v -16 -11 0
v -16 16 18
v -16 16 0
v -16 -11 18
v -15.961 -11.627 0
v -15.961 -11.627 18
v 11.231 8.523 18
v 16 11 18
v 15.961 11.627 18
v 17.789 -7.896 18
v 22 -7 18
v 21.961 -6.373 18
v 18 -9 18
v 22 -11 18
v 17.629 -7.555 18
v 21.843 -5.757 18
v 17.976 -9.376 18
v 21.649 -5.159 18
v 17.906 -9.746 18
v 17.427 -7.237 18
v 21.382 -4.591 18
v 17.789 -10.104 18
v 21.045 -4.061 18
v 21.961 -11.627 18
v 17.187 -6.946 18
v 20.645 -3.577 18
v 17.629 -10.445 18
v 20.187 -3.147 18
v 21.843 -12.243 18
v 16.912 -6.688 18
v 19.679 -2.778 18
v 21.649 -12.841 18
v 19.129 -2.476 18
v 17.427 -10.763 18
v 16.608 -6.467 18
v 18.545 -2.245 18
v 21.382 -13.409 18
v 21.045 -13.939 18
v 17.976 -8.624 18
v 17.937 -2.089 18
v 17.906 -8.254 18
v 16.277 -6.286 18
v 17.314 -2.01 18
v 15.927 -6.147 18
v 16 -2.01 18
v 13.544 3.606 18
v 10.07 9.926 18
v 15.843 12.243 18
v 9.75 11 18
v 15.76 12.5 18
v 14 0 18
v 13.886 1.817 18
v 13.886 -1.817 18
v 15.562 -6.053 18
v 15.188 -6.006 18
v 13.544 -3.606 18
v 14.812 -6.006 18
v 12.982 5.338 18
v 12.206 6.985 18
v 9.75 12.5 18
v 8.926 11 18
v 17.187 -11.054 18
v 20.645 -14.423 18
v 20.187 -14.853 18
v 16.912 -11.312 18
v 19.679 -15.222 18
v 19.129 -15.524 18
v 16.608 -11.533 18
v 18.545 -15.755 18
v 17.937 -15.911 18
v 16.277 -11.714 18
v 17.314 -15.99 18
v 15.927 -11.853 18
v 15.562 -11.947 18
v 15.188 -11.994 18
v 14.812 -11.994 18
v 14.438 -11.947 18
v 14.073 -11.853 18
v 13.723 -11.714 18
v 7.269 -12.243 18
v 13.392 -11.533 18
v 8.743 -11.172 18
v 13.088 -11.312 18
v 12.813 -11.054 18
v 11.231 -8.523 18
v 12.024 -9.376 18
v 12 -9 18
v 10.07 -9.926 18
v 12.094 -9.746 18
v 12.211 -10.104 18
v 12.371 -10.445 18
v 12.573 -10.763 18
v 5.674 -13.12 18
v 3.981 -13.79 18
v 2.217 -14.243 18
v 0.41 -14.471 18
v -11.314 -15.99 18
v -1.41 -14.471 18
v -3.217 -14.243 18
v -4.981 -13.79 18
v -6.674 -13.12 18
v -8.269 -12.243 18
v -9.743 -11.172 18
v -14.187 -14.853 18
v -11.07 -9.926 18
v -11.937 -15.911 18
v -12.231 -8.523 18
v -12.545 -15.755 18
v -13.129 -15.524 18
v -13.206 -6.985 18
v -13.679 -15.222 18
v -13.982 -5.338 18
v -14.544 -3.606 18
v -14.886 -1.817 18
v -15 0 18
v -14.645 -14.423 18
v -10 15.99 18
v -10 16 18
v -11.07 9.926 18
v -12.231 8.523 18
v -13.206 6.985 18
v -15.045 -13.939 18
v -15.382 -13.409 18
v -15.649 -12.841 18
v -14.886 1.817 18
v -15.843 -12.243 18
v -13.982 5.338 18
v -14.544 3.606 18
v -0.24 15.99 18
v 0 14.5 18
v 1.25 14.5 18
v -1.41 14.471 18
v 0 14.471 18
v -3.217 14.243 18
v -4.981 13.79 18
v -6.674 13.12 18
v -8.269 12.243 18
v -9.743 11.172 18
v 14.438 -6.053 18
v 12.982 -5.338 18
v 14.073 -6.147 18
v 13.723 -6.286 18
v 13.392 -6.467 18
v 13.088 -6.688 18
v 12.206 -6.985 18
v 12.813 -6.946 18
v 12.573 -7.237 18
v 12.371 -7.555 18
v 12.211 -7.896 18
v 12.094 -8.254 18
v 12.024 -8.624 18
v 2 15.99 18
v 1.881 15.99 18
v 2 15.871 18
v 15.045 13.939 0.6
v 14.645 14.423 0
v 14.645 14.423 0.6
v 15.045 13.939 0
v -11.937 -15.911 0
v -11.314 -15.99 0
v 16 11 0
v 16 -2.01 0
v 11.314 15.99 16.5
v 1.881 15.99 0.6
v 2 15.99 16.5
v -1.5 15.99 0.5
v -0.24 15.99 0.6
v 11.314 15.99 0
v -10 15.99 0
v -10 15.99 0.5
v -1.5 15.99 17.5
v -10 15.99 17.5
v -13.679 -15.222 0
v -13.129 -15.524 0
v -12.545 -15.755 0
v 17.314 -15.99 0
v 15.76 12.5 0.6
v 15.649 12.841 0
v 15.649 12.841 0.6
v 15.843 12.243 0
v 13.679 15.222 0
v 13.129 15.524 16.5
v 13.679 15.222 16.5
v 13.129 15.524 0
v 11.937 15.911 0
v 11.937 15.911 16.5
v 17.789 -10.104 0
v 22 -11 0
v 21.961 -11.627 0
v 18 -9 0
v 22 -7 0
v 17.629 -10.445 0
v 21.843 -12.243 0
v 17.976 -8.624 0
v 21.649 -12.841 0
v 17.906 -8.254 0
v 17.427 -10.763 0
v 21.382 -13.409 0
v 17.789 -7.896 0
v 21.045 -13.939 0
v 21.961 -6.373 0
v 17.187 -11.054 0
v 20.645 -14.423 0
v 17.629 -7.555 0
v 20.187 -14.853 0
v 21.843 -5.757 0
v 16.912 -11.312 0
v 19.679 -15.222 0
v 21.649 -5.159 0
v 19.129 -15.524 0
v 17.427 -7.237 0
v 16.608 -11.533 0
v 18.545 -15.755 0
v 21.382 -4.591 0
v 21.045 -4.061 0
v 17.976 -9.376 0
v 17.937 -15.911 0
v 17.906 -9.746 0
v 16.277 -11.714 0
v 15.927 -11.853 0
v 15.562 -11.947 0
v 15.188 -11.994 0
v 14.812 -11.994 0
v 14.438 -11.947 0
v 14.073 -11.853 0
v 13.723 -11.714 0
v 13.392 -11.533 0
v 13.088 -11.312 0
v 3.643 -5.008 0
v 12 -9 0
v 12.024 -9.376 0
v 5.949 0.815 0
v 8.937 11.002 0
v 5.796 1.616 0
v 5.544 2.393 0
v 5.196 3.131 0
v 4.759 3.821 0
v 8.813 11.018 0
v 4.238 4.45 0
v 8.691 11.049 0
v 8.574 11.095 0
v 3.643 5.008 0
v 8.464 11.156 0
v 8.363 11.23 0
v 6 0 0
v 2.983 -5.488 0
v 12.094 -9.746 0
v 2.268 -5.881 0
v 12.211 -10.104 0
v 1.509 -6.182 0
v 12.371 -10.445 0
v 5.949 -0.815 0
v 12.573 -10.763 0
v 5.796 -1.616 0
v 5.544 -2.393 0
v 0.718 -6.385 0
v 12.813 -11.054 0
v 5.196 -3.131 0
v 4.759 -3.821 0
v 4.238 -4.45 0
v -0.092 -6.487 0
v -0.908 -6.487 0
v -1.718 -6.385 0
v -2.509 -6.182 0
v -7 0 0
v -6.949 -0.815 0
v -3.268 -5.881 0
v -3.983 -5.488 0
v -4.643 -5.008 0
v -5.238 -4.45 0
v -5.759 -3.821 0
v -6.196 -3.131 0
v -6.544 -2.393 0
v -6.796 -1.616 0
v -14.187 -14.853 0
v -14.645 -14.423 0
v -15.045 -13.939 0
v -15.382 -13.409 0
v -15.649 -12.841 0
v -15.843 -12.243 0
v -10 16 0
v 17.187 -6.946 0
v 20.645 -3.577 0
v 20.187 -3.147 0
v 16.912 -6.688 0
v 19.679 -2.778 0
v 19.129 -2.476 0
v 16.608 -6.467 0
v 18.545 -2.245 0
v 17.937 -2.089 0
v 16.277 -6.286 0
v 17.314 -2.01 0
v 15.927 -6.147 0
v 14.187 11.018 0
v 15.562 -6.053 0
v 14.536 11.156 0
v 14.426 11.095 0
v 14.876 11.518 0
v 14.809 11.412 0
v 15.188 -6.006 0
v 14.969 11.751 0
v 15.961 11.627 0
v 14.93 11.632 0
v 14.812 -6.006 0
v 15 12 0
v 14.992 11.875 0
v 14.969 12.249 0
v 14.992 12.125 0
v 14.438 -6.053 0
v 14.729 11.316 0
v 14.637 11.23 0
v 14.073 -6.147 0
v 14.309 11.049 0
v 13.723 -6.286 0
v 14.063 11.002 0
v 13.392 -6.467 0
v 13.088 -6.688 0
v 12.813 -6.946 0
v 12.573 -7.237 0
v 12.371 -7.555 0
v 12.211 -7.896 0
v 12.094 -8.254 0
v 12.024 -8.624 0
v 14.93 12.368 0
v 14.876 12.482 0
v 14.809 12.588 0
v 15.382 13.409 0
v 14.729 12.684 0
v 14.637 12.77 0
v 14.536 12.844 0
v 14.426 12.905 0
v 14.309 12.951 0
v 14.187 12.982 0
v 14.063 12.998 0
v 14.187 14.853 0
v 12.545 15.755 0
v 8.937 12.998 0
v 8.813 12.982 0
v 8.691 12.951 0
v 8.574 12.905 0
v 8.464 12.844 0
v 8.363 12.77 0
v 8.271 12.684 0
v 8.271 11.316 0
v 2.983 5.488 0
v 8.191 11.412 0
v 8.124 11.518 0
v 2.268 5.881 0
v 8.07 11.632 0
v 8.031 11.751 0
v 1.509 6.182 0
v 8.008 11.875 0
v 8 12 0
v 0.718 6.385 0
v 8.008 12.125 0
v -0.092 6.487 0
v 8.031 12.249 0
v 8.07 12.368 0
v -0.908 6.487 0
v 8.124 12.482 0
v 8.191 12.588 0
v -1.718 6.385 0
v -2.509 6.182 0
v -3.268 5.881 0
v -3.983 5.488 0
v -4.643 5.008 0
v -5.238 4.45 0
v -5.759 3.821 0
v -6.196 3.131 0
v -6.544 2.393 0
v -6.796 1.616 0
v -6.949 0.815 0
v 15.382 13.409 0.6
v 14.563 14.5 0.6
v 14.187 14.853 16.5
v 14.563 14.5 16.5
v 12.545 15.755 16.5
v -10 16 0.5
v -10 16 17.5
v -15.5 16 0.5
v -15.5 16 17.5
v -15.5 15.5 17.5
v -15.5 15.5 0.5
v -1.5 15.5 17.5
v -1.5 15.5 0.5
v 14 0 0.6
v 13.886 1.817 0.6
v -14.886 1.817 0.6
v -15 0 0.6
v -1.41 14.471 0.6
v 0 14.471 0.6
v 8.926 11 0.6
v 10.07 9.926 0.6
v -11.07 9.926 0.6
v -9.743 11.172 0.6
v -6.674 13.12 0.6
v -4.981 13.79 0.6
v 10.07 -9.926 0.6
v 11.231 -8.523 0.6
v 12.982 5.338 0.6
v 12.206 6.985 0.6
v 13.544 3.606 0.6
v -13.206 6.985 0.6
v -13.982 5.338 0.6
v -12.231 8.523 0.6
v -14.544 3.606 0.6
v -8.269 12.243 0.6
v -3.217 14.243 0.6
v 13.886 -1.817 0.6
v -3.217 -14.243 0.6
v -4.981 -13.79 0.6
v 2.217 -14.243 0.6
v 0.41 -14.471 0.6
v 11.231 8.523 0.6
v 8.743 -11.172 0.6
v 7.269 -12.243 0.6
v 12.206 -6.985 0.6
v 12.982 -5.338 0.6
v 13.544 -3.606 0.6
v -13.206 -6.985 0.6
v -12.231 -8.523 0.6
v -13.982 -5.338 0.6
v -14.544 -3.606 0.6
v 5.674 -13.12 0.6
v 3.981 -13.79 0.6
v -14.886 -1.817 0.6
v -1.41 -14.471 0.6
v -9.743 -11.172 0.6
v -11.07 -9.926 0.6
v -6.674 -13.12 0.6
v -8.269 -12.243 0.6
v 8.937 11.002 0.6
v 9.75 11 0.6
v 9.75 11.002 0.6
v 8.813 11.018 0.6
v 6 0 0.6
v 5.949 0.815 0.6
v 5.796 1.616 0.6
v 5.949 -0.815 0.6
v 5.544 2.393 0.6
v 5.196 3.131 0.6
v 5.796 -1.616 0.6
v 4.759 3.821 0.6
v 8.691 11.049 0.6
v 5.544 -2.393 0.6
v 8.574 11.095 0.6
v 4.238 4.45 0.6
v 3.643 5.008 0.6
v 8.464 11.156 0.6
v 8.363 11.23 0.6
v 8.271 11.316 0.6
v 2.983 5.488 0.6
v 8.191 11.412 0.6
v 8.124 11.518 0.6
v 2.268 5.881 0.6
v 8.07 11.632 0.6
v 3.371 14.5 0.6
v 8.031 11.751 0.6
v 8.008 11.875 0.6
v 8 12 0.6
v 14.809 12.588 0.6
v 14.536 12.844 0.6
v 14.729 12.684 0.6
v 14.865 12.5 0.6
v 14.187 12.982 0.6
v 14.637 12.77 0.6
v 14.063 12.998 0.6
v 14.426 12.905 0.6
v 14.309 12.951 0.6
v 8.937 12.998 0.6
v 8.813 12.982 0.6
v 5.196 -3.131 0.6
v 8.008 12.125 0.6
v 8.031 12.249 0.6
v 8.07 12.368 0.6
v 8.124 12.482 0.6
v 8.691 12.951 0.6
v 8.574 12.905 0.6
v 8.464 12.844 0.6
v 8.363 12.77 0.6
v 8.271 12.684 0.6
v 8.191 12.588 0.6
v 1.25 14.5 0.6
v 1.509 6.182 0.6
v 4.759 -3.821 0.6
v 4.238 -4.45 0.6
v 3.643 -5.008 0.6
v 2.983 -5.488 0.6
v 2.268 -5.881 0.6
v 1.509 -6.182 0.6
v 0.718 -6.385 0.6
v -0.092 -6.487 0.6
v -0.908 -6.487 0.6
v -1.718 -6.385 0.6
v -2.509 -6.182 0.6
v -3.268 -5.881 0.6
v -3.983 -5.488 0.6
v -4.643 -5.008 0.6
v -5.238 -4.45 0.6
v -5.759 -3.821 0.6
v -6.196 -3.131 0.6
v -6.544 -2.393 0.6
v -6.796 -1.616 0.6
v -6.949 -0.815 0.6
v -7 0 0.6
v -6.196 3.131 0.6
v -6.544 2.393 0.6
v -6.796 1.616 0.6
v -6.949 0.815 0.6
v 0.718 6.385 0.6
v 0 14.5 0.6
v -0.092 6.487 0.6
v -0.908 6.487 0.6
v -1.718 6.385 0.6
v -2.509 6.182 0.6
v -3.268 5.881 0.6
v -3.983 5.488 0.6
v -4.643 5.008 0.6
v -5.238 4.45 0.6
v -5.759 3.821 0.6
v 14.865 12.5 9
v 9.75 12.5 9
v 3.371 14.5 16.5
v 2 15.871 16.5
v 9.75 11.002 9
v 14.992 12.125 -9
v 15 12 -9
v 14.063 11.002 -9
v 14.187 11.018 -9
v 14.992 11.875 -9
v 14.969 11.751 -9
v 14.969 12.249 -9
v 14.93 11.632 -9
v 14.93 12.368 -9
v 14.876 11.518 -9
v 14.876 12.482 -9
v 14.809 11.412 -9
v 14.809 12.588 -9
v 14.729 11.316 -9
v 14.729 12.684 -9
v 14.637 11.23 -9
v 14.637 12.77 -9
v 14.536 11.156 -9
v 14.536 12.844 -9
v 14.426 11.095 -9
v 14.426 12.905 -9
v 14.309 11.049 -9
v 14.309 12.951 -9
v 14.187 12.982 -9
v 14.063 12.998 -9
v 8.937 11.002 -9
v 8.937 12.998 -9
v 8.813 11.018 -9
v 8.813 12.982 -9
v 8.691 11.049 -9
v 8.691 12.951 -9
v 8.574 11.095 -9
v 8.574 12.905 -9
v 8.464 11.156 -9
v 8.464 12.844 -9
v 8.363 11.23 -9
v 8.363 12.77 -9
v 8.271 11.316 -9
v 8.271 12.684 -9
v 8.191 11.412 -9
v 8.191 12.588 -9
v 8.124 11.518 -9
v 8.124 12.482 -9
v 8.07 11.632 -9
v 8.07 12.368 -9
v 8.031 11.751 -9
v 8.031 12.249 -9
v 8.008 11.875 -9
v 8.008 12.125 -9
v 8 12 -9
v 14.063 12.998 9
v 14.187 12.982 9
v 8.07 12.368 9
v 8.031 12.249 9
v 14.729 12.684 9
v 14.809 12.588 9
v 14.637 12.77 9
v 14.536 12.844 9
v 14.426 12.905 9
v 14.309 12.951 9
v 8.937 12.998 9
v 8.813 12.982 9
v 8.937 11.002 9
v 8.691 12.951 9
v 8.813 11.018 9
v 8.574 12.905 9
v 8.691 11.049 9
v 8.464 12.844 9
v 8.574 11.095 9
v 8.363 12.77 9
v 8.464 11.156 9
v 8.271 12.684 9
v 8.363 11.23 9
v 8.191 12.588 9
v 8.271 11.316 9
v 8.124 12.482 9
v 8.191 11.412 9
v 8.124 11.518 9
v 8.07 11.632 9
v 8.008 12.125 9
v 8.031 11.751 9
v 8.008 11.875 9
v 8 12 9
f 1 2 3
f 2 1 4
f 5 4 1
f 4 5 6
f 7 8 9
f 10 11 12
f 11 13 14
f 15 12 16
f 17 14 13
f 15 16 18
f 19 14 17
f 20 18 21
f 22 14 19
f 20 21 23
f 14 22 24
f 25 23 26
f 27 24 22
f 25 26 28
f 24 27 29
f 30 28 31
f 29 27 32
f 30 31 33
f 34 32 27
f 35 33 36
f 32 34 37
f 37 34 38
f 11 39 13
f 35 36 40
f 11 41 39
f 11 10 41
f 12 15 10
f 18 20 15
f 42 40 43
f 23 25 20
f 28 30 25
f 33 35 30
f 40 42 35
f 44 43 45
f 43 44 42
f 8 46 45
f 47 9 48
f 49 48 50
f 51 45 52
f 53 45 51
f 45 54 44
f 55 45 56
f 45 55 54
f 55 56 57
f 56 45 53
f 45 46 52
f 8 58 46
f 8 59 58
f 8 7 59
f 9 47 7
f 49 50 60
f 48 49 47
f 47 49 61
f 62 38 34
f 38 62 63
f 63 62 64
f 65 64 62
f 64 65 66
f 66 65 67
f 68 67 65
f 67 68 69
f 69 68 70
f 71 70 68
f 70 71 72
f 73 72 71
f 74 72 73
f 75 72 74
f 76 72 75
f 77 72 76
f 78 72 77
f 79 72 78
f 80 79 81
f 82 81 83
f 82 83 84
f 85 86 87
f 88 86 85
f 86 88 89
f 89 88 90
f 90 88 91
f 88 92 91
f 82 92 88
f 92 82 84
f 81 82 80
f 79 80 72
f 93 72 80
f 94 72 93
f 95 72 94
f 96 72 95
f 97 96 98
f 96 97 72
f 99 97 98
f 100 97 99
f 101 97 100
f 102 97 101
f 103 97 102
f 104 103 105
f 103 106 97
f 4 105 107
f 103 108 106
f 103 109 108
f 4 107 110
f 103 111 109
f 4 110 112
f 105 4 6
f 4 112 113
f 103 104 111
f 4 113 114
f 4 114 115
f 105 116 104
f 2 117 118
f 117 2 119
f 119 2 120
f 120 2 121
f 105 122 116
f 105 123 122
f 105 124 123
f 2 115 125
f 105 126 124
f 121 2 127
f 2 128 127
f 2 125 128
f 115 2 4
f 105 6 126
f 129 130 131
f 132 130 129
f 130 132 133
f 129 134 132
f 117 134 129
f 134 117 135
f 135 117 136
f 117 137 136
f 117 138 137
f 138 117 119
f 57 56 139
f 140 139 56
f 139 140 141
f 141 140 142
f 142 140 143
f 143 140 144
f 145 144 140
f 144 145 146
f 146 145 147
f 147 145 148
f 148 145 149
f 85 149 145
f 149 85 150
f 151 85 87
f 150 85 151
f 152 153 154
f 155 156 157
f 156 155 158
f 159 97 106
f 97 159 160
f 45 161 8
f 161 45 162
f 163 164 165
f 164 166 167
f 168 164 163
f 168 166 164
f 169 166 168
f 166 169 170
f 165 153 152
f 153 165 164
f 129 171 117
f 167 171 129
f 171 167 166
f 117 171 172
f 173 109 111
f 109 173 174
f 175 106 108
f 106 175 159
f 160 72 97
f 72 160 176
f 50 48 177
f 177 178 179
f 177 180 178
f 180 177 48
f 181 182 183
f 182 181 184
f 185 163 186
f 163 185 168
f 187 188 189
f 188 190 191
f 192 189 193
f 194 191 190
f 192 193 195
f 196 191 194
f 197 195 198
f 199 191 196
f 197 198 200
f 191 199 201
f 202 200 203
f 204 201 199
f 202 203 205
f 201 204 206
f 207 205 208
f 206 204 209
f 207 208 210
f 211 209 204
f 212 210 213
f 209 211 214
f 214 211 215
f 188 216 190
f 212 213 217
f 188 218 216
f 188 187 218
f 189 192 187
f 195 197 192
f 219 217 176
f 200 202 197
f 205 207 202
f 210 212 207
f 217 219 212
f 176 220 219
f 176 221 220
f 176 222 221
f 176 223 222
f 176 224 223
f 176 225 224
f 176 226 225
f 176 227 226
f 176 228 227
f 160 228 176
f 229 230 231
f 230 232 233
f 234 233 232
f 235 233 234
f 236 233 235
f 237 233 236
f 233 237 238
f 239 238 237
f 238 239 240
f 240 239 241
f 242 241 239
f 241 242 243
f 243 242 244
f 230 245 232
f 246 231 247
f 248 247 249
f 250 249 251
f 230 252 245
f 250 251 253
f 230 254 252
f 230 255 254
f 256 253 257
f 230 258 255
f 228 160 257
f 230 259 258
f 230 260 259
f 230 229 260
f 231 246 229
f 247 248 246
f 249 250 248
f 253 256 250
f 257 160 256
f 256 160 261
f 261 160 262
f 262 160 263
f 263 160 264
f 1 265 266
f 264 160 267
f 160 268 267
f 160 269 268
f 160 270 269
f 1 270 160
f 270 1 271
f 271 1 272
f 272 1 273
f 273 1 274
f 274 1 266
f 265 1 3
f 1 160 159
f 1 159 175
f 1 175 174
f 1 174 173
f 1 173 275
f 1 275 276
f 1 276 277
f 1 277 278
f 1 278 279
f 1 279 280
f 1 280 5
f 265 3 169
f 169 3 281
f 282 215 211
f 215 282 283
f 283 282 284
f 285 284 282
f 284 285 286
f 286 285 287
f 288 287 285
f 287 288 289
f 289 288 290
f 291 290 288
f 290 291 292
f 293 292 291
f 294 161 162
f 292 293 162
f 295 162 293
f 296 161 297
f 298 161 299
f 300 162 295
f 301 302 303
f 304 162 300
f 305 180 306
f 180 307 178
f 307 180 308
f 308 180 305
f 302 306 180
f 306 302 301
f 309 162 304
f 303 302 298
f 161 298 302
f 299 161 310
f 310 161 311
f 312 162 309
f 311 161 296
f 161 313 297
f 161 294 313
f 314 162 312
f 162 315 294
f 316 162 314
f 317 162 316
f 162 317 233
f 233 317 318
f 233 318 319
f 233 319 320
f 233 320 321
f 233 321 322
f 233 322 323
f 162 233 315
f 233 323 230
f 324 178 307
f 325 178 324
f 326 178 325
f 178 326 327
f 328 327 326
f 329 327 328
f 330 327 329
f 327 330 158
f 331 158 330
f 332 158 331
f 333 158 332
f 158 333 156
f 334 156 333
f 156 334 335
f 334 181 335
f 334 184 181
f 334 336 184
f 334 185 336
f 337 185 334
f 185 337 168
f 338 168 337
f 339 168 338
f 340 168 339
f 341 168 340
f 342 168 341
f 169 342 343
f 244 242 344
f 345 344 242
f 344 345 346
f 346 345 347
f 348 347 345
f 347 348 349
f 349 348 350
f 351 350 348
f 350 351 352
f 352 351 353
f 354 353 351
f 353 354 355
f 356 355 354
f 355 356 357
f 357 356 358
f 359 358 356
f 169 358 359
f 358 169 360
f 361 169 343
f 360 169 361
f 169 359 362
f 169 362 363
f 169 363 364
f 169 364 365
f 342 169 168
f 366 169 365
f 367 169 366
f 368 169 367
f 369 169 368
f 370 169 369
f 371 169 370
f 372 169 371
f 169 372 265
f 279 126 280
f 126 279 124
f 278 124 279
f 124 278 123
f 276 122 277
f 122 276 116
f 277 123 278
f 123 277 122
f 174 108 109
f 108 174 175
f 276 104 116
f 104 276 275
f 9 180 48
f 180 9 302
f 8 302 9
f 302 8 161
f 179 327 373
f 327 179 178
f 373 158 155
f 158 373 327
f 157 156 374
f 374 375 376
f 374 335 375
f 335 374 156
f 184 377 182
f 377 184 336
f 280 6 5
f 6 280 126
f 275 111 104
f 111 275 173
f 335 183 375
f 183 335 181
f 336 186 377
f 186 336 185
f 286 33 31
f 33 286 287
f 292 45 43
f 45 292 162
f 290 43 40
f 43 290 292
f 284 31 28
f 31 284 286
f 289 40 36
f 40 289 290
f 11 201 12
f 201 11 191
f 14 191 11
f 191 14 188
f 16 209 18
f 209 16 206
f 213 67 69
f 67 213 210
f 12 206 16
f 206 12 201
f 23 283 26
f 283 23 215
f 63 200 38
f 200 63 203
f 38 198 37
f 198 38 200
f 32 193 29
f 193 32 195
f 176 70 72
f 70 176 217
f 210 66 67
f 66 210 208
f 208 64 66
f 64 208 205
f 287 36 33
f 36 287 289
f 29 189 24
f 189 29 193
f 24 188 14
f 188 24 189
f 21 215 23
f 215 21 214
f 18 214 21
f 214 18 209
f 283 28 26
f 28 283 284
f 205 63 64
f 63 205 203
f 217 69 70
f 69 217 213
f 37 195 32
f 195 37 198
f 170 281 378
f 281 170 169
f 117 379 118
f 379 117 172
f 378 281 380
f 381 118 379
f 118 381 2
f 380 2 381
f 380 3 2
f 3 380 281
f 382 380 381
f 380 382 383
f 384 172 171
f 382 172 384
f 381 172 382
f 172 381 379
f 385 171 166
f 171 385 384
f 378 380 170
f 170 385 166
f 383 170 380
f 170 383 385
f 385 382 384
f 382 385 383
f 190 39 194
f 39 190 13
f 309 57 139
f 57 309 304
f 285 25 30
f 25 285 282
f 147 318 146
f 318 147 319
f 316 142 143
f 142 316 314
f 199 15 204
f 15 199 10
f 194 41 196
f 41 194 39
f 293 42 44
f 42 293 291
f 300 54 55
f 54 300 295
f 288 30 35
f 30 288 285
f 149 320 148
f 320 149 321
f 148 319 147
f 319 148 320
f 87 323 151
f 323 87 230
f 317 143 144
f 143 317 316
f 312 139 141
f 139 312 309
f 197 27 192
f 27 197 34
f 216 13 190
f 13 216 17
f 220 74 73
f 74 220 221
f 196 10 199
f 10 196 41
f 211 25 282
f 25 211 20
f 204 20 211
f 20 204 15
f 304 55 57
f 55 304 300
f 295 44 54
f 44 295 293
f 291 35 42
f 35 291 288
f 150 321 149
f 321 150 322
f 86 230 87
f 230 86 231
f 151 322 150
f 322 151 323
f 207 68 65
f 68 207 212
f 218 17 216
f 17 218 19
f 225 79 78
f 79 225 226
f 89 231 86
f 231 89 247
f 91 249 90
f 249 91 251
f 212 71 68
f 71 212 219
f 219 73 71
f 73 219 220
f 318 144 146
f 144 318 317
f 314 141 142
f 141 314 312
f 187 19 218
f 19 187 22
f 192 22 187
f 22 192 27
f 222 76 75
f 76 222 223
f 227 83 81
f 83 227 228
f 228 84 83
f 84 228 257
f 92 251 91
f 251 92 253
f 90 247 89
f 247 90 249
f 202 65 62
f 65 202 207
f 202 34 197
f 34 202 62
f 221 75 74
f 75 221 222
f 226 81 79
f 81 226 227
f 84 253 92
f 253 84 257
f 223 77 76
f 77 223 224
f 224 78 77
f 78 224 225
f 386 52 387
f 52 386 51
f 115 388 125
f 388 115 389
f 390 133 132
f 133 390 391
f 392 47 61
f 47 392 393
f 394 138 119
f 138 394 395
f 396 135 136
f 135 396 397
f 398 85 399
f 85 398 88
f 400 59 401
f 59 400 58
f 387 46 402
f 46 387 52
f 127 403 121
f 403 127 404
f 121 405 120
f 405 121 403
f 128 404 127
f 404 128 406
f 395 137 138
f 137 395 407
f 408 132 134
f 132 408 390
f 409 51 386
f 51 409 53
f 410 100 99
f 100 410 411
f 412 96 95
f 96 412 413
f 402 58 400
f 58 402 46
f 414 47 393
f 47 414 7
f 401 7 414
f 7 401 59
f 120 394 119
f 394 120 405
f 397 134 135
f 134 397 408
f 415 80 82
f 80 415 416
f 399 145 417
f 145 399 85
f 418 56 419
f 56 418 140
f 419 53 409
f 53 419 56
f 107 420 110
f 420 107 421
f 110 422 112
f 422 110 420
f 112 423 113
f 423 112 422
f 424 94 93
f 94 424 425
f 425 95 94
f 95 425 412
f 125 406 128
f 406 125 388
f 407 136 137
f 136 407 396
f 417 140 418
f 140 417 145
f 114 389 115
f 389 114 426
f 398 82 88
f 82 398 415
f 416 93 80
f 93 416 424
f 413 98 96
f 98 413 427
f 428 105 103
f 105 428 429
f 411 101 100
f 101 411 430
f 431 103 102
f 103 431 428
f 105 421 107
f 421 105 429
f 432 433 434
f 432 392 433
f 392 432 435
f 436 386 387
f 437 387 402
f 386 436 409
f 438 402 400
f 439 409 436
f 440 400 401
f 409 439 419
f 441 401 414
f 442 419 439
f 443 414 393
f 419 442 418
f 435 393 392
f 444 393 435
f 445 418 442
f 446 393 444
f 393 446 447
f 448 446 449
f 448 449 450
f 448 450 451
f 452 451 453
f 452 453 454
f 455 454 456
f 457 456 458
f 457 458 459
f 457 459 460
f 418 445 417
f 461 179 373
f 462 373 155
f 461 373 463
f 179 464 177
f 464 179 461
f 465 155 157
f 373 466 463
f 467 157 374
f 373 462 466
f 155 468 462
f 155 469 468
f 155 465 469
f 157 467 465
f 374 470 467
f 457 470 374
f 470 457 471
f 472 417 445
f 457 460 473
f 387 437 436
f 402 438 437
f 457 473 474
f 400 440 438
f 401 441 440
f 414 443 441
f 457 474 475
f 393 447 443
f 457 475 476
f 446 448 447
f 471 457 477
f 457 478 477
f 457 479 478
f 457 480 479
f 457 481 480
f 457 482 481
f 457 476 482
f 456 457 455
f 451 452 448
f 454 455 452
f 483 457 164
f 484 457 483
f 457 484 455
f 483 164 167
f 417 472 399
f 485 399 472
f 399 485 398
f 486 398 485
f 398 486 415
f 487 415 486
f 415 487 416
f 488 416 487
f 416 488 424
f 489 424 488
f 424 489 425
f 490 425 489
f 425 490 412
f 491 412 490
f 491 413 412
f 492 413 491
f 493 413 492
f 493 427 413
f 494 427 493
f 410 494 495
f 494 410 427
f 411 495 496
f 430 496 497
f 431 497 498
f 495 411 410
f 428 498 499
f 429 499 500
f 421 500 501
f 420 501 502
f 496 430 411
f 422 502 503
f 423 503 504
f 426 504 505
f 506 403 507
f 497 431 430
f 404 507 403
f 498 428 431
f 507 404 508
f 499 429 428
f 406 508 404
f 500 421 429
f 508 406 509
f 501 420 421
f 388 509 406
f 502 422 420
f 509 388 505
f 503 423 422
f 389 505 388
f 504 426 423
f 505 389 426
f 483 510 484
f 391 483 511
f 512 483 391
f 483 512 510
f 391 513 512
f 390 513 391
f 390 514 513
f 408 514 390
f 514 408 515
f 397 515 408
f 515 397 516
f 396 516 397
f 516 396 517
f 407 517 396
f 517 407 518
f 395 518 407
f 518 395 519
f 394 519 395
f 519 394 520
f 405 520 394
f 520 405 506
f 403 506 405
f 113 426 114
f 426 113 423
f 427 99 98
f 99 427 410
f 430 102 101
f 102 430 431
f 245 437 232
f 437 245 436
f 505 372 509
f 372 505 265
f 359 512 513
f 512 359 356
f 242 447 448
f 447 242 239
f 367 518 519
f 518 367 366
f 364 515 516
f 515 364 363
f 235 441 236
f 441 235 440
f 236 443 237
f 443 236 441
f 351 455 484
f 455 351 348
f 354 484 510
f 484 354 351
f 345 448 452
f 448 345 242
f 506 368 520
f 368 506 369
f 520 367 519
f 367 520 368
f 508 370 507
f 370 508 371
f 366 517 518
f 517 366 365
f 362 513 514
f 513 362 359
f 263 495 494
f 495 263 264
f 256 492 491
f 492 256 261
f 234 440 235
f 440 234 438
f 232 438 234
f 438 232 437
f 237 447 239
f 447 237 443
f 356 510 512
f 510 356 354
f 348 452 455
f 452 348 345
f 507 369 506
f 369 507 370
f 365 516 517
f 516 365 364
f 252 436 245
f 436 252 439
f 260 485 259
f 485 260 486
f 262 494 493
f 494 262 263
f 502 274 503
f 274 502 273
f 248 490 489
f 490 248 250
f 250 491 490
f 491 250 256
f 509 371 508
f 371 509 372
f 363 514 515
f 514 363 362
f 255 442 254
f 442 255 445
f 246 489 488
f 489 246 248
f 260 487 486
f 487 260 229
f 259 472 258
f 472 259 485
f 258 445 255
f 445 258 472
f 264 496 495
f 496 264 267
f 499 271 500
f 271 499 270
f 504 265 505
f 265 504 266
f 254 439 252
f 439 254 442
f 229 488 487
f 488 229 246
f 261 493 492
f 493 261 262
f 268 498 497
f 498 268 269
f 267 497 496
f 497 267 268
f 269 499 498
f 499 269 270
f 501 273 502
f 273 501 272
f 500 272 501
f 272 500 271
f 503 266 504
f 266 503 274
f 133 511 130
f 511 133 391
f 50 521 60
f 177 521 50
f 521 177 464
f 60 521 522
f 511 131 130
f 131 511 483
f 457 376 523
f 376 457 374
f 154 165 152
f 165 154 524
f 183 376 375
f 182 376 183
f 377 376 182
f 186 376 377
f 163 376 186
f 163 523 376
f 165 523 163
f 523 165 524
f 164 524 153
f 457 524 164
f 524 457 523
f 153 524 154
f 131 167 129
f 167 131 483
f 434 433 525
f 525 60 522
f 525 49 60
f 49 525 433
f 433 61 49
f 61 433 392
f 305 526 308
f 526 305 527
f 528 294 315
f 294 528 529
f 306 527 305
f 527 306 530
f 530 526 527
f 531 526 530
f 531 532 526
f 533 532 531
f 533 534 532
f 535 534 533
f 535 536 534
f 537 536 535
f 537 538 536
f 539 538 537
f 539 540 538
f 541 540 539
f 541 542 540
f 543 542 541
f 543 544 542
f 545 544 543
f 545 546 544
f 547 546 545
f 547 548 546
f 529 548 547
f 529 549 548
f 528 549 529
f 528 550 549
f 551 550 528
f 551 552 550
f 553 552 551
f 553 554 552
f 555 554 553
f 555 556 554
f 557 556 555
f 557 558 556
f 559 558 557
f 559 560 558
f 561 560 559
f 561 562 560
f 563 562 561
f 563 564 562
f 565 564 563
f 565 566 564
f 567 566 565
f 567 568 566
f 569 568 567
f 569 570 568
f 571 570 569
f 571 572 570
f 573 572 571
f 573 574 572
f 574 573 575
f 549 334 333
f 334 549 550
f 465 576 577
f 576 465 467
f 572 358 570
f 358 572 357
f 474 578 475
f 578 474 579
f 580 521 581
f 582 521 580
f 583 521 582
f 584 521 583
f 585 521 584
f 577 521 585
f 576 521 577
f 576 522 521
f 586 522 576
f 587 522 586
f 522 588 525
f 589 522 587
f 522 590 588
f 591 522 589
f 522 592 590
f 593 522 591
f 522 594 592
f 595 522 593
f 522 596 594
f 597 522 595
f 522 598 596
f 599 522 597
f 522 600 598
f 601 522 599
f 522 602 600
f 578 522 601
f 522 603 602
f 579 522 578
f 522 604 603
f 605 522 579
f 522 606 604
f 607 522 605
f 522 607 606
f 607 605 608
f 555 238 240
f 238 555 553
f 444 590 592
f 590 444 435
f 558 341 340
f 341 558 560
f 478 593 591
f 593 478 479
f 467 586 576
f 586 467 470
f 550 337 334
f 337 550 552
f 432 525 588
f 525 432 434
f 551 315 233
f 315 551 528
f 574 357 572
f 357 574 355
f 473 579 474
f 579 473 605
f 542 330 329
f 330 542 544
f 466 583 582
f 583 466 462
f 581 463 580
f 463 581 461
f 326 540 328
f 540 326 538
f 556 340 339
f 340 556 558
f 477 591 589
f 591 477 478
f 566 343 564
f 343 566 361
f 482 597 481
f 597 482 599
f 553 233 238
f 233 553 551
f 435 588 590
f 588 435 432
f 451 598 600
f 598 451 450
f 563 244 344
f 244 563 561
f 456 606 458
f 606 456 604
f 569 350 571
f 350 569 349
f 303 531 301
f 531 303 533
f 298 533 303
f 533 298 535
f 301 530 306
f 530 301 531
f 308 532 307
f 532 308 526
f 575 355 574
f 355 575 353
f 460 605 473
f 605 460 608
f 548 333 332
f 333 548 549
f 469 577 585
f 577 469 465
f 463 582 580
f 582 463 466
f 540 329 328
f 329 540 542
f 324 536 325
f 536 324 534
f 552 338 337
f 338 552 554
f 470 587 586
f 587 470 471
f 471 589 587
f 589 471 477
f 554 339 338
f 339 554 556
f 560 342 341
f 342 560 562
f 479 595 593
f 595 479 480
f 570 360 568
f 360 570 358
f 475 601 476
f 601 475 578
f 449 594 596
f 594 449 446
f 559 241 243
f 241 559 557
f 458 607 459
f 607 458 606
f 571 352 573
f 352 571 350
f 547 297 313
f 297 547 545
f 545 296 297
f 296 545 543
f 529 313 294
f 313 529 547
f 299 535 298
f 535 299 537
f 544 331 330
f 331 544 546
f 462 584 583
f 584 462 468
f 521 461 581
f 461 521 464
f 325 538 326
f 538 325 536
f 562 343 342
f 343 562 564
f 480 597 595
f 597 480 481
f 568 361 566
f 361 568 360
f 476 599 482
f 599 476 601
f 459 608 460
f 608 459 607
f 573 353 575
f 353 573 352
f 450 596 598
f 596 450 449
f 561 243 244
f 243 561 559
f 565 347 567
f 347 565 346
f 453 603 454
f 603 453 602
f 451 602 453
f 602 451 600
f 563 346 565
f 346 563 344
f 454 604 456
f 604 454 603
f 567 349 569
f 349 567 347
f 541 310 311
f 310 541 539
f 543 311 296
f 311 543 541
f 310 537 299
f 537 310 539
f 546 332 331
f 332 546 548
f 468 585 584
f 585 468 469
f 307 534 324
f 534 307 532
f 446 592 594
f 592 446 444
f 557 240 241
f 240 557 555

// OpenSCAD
$fn = 50;


union() {
	difference() {
		union() {
			hull() {
				translate(v = [-11.0000000000, 11.0000000000, 0]) {
					cylinder(h = 18, r = 5);
				}
				translate(v = [11.0000000000, 11.0000000000, 0]) {
					cylinder(h = 18, r = 5);
				}
				translate(v = [-11.0000000000, -11.0000000000, 0]) {
					cylinder(h = 18, r = 5);
				}
				translate(v = [11.0000000000, -11.0000000000, 0]) {
					cylinder(h = 18, r = 5);
				}
			}
			translate(v = [7.5000000000, -9.0000000000, 0]) {
				hull() {
					translate(v = [-9.5000000000, 2.0000000000, 0]) {
						cylinder(h = 18, r = 5);
					}
					translate(v = [9.5000000000, 2.0000000000, 0]) {
						cylinder(h = 18, r = 5);
					}
					translate(v = [-9.5000000000, -2.0000000000, 0]) {
						cylinder(h = 18, r = 5);
					}
					translate(v = [9.5000000000, -2.0000000000, 0]) {
						cylinder(h = 18, r = 5);
					}
				}
			}
			translate(v = [-16.0000000000, 10.0000000000, 0]) {
				cube(size = [6, 6, 18]);
			}
		}
		union() {
			translate(v = [-15.5000000000, 15.5000000000, 0.5000000000]) {
				cube(size = [14, 0.5000000000, 17.0000000000]);
			}
			translate(v = [15.0000000000, -9.0000000000, -100.0000000000]) {
				cylinder(h = 200, r = 3.0000000000);
			}
			translate(v = [-0.5000000000, 0.0000000000, 0.6000000000]) {
				cylinder(h = 20.4000000000, r = 14.5000000000);
			}
			translate(v = [-0.5000000000, 0.0000000000, -9.0000000000]) {
				cylinder(h = 18, r = 6.5000000000);
			}
			translate(v = [0.0000000000, 12.5000000000, 0.6000000000]) {
				cube(size = [16.0000000000, 2, 20.4000000000]);
			}
			translate(v = [2.0000000000, 12.5000000000, 16.5000000000]) {
				cube(size = [14.0000000000, 5, 1.5000000000]);
			}
			translate(v = [-3.0000000000, 18.7500000000, 0.6000000000]) {
				rotate(a = [0, 0, -45]) {
					cube(size = [10, 1.5000000000, 20.4000000000]);
				}
			}
			translate(v = [2.2500000000, 11.0000000000, 0.6000000000]) {
				cube(size = [7.5000000000, 2, 17.4000000000]);
			}
		}
	}
	union() {
		translate(v = [11.5000000000, 12, -9.0000000000]) {
			rotate(a = [0, 0, 0]) {
				difference() {
					union() {
						hull() {
							translate(v = [2.5000000000, 0, 0]) {
								cylinder(h = 18, r = 1.0000000000, r1 = 1.0000000000, r2 = 1.0000000000);
							}
							translate(v = [-2.5000000000, 0, 0]) {
								cylinder(h = 18, r = 1.0000000000, r1 = 1.0000000000, r2 = 1.0000000000);
							}
						}
					}
					union();
				}
			}
		}
	}
}
